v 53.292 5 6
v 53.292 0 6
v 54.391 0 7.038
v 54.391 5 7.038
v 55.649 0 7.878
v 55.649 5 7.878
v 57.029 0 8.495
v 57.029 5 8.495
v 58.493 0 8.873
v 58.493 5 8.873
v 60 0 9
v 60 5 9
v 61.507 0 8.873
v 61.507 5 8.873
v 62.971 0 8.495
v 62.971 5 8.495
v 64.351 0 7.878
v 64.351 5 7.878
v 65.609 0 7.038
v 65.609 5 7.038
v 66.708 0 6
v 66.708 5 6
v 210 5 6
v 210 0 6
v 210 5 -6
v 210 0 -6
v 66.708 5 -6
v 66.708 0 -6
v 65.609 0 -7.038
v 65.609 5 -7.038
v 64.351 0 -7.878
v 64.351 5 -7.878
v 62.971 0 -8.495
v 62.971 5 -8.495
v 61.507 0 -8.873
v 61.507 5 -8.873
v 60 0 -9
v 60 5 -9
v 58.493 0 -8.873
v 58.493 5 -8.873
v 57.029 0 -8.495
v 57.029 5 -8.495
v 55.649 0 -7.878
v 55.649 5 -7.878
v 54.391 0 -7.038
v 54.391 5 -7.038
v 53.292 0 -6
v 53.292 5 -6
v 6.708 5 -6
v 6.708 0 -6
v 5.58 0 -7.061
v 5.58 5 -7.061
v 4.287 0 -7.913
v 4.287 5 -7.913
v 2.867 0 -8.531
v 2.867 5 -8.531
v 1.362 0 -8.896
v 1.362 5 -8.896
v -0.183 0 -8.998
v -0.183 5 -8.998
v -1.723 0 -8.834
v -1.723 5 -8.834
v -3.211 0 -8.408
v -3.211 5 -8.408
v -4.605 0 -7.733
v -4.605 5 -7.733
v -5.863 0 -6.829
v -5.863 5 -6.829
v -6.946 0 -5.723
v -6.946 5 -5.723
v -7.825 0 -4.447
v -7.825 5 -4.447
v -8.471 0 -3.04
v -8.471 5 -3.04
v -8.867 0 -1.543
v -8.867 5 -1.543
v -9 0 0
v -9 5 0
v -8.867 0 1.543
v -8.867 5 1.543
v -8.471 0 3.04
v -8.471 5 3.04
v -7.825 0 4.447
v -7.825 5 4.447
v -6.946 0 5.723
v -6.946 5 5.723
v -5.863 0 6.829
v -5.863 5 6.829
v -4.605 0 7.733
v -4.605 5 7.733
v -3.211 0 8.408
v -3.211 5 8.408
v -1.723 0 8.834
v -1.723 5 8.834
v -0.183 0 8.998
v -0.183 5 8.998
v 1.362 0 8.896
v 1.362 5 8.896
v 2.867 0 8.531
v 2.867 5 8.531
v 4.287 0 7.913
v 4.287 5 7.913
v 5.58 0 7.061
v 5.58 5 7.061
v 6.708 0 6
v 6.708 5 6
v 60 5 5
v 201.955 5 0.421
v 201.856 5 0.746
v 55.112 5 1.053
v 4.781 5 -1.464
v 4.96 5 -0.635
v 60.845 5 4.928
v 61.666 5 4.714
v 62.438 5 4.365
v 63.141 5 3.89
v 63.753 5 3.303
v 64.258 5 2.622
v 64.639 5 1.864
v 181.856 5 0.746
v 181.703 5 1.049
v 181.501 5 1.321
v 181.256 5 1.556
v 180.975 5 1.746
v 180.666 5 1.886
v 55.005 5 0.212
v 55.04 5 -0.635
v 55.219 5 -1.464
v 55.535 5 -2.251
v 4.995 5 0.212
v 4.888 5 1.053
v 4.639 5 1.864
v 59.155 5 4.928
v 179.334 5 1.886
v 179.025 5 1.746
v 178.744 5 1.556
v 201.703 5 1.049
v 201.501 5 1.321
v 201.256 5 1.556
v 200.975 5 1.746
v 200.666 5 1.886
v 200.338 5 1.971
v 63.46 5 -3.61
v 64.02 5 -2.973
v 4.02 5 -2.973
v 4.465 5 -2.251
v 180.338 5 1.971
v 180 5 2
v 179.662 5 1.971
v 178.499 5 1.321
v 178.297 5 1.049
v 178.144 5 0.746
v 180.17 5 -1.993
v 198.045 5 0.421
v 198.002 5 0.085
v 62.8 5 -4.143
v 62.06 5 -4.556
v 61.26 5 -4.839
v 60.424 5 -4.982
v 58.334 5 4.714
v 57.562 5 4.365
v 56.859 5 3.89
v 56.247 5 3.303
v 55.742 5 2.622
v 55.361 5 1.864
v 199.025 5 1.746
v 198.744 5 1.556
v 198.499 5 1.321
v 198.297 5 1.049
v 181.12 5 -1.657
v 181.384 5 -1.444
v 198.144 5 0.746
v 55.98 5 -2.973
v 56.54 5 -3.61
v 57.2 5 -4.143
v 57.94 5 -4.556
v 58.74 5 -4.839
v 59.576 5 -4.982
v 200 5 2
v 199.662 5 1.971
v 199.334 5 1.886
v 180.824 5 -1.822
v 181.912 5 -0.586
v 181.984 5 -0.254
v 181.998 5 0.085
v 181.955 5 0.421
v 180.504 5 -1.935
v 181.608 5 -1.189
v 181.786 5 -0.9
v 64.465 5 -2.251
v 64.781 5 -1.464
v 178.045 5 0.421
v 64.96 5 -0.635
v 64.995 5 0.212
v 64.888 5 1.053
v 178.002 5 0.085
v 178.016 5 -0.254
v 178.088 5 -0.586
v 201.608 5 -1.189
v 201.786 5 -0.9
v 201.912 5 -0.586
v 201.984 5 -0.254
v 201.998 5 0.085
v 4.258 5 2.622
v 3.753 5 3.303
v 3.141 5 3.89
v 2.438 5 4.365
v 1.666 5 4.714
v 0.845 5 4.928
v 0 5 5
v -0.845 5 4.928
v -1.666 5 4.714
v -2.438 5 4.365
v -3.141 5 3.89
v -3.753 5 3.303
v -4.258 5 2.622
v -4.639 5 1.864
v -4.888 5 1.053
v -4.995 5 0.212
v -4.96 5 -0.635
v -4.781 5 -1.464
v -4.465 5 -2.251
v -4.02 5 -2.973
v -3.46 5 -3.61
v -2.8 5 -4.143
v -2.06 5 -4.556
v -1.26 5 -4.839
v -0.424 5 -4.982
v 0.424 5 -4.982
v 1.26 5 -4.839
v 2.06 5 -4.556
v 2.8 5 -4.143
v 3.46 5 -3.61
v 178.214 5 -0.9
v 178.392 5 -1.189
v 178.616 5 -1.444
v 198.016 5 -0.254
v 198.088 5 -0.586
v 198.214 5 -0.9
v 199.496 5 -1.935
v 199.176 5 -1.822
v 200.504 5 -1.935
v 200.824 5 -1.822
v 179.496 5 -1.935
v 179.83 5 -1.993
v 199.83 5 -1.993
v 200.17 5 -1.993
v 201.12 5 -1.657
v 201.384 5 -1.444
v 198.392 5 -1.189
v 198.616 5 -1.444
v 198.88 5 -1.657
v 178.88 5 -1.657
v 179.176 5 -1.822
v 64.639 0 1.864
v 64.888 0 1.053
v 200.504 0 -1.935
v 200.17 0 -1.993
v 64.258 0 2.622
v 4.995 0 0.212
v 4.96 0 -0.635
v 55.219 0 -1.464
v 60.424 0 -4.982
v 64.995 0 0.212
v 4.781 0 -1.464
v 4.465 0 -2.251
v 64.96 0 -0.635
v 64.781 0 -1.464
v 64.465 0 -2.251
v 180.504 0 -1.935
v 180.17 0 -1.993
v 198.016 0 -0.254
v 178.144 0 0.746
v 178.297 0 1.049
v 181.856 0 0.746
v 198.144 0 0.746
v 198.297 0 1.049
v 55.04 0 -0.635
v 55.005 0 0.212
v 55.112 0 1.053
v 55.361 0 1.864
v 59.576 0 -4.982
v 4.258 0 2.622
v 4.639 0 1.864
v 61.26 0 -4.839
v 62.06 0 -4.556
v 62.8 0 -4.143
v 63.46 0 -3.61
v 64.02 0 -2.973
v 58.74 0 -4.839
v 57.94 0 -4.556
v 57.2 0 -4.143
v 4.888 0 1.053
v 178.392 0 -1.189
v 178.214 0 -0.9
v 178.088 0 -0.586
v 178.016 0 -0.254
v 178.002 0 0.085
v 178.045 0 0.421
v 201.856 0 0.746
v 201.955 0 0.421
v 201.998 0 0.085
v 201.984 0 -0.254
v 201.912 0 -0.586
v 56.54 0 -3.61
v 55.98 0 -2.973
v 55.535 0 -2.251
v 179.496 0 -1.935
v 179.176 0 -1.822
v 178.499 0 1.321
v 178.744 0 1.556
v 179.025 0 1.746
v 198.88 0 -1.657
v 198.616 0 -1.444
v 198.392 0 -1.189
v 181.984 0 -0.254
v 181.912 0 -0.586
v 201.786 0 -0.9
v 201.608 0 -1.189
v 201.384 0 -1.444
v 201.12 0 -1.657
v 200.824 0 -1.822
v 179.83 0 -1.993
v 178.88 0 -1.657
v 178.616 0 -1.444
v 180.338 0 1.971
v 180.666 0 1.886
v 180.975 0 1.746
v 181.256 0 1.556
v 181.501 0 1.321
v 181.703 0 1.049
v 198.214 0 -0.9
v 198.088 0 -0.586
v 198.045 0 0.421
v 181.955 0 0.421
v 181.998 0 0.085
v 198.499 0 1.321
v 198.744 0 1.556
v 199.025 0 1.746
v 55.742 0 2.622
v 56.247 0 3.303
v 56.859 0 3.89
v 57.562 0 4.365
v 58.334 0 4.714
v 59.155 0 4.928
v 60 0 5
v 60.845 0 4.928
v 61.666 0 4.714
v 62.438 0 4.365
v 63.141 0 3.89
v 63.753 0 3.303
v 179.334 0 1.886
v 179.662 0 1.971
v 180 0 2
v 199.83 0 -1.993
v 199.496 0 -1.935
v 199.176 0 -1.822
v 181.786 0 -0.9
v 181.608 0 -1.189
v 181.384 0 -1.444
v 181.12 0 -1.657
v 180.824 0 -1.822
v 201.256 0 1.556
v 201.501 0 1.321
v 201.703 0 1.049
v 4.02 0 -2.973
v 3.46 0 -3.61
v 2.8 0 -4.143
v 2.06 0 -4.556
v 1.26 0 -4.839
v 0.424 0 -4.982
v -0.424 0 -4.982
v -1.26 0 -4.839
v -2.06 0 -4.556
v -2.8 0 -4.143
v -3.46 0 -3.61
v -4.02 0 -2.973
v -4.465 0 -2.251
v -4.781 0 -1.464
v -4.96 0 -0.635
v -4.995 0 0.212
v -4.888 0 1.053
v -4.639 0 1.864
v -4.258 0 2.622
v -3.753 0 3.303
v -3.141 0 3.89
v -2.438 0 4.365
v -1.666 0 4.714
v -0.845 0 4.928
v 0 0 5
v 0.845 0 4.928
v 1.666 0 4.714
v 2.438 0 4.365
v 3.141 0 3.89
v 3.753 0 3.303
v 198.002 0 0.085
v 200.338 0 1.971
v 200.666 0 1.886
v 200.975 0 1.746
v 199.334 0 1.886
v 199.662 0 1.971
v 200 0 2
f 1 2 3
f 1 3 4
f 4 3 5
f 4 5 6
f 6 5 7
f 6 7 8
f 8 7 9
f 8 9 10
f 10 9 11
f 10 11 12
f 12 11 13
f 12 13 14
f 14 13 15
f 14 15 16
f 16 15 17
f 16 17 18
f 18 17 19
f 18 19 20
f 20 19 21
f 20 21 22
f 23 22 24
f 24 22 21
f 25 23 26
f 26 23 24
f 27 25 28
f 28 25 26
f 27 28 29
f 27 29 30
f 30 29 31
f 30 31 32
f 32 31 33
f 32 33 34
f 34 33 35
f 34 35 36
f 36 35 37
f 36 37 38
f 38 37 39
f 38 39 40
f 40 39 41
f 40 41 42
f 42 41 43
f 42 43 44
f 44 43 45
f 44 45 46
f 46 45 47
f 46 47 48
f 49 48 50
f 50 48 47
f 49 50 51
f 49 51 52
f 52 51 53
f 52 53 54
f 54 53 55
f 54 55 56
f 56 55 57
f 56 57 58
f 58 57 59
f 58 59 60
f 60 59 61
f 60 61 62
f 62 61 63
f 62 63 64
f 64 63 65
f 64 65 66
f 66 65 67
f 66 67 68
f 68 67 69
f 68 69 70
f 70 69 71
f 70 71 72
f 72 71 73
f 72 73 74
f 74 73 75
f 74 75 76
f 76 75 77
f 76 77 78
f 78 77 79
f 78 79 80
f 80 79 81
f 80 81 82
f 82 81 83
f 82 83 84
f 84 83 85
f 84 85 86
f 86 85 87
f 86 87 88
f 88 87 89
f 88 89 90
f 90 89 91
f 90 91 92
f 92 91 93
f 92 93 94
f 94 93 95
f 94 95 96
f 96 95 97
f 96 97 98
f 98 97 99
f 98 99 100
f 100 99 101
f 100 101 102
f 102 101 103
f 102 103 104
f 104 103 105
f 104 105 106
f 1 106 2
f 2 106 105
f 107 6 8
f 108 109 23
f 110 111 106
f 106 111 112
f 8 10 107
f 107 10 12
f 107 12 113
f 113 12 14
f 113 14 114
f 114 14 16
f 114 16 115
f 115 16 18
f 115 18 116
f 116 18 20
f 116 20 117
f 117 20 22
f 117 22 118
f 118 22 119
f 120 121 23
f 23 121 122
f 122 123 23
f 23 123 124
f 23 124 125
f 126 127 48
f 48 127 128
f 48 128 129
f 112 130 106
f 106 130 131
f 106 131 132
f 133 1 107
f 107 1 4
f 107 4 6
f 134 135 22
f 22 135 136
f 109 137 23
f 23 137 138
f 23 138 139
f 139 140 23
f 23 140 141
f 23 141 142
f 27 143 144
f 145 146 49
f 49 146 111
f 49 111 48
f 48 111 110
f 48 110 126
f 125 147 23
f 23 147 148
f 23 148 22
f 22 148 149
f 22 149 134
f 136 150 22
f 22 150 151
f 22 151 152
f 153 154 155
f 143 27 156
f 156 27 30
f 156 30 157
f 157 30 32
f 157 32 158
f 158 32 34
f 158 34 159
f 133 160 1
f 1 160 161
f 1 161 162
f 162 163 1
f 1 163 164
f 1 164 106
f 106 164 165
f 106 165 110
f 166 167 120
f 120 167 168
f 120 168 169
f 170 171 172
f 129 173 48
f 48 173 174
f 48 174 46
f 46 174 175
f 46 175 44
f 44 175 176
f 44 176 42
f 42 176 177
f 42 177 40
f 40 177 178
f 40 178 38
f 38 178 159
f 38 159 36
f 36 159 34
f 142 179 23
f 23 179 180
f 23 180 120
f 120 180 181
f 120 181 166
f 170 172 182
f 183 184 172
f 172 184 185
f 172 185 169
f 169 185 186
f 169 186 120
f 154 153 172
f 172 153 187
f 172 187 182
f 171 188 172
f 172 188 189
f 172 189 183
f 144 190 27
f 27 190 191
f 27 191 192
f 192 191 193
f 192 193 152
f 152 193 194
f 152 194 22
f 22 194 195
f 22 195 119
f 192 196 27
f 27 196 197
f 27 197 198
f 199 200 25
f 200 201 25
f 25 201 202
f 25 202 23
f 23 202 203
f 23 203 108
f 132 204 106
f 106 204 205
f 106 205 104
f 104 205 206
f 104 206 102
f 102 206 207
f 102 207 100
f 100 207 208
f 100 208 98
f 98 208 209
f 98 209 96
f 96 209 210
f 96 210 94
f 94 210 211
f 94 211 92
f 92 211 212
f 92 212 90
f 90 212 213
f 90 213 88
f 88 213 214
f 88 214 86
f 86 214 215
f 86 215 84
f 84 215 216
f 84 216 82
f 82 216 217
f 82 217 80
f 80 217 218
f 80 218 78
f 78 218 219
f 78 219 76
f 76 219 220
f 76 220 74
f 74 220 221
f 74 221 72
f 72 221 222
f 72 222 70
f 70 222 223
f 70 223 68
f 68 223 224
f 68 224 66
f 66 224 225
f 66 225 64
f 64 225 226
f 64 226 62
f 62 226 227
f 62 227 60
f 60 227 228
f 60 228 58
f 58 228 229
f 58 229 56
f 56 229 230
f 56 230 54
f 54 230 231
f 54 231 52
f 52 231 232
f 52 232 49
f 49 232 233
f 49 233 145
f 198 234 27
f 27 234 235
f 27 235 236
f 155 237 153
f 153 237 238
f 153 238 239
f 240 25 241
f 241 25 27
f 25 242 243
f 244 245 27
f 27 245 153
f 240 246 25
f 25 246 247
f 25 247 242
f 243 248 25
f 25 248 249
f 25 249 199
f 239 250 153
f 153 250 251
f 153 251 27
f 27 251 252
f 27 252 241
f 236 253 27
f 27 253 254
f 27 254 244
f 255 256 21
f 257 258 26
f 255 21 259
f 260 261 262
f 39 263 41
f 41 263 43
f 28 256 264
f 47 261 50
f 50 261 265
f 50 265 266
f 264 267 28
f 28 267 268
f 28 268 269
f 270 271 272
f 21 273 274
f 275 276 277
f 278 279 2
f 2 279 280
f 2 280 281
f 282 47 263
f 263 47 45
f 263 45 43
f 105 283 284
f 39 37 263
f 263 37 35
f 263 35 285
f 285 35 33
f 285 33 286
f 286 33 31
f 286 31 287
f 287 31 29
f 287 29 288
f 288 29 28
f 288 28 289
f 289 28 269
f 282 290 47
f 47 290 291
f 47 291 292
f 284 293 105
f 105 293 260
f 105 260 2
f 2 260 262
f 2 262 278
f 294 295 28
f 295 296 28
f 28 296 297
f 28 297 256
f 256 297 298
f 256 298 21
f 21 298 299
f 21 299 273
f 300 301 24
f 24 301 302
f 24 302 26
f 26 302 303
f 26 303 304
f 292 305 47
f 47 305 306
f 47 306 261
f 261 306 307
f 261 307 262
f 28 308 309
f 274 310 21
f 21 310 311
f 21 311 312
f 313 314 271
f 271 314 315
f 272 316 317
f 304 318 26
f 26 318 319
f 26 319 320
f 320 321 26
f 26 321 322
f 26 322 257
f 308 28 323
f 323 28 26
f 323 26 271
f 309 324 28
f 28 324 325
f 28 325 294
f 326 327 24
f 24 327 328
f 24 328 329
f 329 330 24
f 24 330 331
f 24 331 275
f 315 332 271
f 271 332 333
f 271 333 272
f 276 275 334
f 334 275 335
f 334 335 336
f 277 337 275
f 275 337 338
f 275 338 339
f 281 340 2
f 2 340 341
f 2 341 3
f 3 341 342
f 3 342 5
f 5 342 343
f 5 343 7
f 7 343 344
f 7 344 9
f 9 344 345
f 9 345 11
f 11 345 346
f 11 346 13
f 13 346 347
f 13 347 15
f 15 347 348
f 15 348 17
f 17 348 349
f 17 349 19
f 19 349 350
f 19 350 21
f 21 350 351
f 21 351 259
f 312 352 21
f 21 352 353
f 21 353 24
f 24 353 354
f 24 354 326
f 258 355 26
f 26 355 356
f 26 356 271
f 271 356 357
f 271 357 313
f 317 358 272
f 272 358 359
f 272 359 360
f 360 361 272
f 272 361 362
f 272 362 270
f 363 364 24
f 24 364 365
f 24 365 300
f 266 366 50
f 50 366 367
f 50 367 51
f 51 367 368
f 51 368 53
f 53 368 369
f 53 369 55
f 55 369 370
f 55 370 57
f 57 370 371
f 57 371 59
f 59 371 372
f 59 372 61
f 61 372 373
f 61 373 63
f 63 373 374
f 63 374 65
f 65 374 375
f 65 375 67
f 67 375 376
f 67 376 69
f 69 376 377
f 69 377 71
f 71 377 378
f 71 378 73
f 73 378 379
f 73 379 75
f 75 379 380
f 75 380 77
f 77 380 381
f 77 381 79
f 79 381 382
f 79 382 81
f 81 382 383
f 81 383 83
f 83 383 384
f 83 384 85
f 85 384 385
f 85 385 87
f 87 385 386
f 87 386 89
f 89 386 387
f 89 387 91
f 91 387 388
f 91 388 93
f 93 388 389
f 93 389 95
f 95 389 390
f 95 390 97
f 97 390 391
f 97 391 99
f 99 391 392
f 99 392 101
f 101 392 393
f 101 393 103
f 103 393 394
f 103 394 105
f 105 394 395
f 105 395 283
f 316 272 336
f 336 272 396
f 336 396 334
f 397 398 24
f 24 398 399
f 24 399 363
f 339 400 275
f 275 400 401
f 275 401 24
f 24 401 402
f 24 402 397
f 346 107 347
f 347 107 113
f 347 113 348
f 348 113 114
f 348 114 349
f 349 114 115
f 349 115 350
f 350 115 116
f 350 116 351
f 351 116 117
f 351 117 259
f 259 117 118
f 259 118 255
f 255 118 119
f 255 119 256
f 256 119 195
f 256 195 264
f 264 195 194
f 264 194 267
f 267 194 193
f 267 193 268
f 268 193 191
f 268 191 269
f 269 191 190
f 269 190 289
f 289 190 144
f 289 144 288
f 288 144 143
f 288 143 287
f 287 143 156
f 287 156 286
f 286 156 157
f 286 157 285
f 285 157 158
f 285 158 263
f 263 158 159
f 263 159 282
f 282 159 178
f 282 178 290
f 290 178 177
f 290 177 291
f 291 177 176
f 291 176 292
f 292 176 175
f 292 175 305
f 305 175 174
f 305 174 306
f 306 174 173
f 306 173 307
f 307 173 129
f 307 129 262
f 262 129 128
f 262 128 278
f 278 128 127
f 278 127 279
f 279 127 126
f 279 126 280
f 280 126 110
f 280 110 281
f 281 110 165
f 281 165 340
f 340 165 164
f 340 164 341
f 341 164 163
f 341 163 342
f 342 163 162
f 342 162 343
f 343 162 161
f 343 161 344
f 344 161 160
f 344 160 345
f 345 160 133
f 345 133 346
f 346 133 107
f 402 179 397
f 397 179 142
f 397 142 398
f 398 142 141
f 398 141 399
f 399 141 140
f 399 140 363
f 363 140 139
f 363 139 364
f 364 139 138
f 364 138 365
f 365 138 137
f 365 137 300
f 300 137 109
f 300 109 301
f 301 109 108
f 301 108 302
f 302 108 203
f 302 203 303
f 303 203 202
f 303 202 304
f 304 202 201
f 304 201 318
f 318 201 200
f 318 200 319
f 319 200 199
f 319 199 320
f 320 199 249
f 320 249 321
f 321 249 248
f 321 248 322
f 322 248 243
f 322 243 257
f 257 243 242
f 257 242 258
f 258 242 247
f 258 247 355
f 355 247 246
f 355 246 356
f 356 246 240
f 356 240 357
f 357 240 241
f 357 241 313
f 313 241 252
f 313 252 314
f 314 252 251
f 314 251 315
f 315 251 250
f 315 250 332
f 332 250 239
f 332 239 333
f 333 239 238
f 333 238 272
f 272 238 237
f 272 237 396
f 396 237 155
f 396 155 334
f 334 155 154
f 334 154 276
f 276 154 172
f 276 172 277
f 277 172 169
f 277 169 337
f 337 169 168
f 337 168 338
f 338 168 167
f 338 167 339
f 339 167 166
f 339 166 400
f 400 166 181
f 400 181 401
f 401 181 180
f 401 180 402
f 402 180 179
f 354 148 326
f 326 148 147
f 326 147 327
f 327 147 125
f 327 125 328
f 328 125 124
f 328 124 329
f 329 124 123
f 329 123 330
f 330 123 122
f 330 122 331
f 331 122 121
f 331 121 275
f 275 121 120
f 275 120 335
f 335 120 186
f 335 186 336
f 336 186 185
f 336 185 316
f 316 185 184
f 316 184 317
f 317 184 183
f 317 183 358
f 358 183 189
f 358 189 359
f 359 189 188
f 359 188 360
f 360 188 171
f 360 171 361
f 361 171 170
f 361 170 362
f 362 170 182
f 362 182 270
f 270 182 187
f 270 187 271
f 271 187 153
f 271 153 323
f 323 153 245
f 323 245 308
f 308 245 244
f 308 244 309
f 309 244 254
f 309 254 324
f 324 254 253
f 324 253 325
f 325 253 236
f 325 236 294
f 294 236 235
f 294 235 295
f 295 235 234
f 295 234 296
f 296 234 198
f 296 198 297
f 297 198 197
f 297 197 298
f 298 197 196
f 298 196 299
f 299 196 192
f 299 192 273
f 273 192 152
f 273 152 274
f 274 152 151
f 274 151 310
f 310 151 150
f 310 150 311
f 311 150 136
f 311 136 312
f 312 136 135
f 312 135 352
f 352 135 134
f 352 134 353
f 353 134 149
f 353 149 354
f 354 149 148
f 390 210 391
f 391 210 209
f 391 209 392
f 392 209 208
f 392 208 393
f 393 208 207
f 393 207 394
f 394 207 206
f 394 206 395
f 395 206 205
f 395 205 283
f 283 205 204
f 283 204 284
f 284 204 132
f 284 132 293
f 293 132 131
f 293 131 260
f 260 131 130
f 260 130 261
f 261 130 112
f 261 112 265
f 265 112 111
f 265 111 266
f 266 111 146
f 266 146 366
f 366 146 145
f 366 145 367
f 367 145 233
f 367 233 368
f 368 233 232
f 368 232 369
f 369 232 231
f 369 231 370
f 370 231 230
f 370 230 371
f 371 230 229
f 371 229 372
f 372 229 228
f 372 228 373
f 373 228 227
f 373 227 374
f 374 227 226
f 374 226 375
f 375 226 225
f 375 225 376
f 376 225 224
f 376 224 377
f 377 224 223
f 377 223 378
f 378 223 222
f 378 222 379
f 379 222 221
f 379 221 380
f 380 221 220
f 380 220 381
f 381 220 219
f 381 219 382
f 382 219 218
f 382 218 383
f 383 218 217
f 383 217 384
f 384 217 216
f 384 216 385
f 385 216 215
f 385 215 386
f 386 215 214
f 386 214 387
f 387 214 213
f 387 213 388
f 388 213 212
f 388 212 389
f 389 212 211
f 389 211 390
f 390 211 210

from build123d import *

# Parameters (mm, degrees)
BOSS_EXTRUDE1_DEPTH = 5
SKETCH2_R           = 5
SKETCH2_R_2         = 2
CUT_EXTRUDE1_DEPTH  = 211.252229477


with BuildPart() as part:
    # Sketch1 → Boss-Extrude1 (new body)
    with BuildSketch(Plane(origin=(0, 0, 0), x_dir=(1, 0, 0), z_dir=(0, 1, 0))):
        with BuildLine():
            Line((6.708203932, 6), (53.291796068, 6))
            ThreePointArc((53.291796068, 6), (60, 9), (66.708203932, 6))
            Line((66.708203932, 6), (210, 6))
            Line((210, 6), (210, -6))
            Line((210, -6), (66.708203932, -6))
            ThreePointArc((66.708203932, -6), (60, -9), (53.291796068, -6))
            Line((53.291796068, -6), (6.708203932, -6))
            ThreePointArc((6.708203932, -6), (-9, 0), (6.708203932, 6))
        make_face()
    extrude(amount=BOSS_EXTRUDE1_DEPTH)

    # Sketch2 → Cut-Extrude1 (cut, through all)
    with BuildSketch(Plane(origin=(0, 5, 0), x_dir=(1, 0, 0), z_dir=(0, 1, 0))):
        with Locations(Location((0, 0, 0), (0, 0, 270))):
            Circle(SKETCH2_R)
        with Locations(Location((60, 0, 0), (0, 0, 270))):
            Circle(SKETCH2_R)
        with Locations(Location((200, 0, 0), (0, 0, 270))):
            Circle(SKETCH2_R_2)
        with Locations(Location((180, 0, 0), (0, 0, 270))):
            Circle(SKETCH2_R_2)
    extrude(amount=-CUT_EXTRUDE1_DEPTH, mode=Mode.SUBTRACT)


solid = part.part
